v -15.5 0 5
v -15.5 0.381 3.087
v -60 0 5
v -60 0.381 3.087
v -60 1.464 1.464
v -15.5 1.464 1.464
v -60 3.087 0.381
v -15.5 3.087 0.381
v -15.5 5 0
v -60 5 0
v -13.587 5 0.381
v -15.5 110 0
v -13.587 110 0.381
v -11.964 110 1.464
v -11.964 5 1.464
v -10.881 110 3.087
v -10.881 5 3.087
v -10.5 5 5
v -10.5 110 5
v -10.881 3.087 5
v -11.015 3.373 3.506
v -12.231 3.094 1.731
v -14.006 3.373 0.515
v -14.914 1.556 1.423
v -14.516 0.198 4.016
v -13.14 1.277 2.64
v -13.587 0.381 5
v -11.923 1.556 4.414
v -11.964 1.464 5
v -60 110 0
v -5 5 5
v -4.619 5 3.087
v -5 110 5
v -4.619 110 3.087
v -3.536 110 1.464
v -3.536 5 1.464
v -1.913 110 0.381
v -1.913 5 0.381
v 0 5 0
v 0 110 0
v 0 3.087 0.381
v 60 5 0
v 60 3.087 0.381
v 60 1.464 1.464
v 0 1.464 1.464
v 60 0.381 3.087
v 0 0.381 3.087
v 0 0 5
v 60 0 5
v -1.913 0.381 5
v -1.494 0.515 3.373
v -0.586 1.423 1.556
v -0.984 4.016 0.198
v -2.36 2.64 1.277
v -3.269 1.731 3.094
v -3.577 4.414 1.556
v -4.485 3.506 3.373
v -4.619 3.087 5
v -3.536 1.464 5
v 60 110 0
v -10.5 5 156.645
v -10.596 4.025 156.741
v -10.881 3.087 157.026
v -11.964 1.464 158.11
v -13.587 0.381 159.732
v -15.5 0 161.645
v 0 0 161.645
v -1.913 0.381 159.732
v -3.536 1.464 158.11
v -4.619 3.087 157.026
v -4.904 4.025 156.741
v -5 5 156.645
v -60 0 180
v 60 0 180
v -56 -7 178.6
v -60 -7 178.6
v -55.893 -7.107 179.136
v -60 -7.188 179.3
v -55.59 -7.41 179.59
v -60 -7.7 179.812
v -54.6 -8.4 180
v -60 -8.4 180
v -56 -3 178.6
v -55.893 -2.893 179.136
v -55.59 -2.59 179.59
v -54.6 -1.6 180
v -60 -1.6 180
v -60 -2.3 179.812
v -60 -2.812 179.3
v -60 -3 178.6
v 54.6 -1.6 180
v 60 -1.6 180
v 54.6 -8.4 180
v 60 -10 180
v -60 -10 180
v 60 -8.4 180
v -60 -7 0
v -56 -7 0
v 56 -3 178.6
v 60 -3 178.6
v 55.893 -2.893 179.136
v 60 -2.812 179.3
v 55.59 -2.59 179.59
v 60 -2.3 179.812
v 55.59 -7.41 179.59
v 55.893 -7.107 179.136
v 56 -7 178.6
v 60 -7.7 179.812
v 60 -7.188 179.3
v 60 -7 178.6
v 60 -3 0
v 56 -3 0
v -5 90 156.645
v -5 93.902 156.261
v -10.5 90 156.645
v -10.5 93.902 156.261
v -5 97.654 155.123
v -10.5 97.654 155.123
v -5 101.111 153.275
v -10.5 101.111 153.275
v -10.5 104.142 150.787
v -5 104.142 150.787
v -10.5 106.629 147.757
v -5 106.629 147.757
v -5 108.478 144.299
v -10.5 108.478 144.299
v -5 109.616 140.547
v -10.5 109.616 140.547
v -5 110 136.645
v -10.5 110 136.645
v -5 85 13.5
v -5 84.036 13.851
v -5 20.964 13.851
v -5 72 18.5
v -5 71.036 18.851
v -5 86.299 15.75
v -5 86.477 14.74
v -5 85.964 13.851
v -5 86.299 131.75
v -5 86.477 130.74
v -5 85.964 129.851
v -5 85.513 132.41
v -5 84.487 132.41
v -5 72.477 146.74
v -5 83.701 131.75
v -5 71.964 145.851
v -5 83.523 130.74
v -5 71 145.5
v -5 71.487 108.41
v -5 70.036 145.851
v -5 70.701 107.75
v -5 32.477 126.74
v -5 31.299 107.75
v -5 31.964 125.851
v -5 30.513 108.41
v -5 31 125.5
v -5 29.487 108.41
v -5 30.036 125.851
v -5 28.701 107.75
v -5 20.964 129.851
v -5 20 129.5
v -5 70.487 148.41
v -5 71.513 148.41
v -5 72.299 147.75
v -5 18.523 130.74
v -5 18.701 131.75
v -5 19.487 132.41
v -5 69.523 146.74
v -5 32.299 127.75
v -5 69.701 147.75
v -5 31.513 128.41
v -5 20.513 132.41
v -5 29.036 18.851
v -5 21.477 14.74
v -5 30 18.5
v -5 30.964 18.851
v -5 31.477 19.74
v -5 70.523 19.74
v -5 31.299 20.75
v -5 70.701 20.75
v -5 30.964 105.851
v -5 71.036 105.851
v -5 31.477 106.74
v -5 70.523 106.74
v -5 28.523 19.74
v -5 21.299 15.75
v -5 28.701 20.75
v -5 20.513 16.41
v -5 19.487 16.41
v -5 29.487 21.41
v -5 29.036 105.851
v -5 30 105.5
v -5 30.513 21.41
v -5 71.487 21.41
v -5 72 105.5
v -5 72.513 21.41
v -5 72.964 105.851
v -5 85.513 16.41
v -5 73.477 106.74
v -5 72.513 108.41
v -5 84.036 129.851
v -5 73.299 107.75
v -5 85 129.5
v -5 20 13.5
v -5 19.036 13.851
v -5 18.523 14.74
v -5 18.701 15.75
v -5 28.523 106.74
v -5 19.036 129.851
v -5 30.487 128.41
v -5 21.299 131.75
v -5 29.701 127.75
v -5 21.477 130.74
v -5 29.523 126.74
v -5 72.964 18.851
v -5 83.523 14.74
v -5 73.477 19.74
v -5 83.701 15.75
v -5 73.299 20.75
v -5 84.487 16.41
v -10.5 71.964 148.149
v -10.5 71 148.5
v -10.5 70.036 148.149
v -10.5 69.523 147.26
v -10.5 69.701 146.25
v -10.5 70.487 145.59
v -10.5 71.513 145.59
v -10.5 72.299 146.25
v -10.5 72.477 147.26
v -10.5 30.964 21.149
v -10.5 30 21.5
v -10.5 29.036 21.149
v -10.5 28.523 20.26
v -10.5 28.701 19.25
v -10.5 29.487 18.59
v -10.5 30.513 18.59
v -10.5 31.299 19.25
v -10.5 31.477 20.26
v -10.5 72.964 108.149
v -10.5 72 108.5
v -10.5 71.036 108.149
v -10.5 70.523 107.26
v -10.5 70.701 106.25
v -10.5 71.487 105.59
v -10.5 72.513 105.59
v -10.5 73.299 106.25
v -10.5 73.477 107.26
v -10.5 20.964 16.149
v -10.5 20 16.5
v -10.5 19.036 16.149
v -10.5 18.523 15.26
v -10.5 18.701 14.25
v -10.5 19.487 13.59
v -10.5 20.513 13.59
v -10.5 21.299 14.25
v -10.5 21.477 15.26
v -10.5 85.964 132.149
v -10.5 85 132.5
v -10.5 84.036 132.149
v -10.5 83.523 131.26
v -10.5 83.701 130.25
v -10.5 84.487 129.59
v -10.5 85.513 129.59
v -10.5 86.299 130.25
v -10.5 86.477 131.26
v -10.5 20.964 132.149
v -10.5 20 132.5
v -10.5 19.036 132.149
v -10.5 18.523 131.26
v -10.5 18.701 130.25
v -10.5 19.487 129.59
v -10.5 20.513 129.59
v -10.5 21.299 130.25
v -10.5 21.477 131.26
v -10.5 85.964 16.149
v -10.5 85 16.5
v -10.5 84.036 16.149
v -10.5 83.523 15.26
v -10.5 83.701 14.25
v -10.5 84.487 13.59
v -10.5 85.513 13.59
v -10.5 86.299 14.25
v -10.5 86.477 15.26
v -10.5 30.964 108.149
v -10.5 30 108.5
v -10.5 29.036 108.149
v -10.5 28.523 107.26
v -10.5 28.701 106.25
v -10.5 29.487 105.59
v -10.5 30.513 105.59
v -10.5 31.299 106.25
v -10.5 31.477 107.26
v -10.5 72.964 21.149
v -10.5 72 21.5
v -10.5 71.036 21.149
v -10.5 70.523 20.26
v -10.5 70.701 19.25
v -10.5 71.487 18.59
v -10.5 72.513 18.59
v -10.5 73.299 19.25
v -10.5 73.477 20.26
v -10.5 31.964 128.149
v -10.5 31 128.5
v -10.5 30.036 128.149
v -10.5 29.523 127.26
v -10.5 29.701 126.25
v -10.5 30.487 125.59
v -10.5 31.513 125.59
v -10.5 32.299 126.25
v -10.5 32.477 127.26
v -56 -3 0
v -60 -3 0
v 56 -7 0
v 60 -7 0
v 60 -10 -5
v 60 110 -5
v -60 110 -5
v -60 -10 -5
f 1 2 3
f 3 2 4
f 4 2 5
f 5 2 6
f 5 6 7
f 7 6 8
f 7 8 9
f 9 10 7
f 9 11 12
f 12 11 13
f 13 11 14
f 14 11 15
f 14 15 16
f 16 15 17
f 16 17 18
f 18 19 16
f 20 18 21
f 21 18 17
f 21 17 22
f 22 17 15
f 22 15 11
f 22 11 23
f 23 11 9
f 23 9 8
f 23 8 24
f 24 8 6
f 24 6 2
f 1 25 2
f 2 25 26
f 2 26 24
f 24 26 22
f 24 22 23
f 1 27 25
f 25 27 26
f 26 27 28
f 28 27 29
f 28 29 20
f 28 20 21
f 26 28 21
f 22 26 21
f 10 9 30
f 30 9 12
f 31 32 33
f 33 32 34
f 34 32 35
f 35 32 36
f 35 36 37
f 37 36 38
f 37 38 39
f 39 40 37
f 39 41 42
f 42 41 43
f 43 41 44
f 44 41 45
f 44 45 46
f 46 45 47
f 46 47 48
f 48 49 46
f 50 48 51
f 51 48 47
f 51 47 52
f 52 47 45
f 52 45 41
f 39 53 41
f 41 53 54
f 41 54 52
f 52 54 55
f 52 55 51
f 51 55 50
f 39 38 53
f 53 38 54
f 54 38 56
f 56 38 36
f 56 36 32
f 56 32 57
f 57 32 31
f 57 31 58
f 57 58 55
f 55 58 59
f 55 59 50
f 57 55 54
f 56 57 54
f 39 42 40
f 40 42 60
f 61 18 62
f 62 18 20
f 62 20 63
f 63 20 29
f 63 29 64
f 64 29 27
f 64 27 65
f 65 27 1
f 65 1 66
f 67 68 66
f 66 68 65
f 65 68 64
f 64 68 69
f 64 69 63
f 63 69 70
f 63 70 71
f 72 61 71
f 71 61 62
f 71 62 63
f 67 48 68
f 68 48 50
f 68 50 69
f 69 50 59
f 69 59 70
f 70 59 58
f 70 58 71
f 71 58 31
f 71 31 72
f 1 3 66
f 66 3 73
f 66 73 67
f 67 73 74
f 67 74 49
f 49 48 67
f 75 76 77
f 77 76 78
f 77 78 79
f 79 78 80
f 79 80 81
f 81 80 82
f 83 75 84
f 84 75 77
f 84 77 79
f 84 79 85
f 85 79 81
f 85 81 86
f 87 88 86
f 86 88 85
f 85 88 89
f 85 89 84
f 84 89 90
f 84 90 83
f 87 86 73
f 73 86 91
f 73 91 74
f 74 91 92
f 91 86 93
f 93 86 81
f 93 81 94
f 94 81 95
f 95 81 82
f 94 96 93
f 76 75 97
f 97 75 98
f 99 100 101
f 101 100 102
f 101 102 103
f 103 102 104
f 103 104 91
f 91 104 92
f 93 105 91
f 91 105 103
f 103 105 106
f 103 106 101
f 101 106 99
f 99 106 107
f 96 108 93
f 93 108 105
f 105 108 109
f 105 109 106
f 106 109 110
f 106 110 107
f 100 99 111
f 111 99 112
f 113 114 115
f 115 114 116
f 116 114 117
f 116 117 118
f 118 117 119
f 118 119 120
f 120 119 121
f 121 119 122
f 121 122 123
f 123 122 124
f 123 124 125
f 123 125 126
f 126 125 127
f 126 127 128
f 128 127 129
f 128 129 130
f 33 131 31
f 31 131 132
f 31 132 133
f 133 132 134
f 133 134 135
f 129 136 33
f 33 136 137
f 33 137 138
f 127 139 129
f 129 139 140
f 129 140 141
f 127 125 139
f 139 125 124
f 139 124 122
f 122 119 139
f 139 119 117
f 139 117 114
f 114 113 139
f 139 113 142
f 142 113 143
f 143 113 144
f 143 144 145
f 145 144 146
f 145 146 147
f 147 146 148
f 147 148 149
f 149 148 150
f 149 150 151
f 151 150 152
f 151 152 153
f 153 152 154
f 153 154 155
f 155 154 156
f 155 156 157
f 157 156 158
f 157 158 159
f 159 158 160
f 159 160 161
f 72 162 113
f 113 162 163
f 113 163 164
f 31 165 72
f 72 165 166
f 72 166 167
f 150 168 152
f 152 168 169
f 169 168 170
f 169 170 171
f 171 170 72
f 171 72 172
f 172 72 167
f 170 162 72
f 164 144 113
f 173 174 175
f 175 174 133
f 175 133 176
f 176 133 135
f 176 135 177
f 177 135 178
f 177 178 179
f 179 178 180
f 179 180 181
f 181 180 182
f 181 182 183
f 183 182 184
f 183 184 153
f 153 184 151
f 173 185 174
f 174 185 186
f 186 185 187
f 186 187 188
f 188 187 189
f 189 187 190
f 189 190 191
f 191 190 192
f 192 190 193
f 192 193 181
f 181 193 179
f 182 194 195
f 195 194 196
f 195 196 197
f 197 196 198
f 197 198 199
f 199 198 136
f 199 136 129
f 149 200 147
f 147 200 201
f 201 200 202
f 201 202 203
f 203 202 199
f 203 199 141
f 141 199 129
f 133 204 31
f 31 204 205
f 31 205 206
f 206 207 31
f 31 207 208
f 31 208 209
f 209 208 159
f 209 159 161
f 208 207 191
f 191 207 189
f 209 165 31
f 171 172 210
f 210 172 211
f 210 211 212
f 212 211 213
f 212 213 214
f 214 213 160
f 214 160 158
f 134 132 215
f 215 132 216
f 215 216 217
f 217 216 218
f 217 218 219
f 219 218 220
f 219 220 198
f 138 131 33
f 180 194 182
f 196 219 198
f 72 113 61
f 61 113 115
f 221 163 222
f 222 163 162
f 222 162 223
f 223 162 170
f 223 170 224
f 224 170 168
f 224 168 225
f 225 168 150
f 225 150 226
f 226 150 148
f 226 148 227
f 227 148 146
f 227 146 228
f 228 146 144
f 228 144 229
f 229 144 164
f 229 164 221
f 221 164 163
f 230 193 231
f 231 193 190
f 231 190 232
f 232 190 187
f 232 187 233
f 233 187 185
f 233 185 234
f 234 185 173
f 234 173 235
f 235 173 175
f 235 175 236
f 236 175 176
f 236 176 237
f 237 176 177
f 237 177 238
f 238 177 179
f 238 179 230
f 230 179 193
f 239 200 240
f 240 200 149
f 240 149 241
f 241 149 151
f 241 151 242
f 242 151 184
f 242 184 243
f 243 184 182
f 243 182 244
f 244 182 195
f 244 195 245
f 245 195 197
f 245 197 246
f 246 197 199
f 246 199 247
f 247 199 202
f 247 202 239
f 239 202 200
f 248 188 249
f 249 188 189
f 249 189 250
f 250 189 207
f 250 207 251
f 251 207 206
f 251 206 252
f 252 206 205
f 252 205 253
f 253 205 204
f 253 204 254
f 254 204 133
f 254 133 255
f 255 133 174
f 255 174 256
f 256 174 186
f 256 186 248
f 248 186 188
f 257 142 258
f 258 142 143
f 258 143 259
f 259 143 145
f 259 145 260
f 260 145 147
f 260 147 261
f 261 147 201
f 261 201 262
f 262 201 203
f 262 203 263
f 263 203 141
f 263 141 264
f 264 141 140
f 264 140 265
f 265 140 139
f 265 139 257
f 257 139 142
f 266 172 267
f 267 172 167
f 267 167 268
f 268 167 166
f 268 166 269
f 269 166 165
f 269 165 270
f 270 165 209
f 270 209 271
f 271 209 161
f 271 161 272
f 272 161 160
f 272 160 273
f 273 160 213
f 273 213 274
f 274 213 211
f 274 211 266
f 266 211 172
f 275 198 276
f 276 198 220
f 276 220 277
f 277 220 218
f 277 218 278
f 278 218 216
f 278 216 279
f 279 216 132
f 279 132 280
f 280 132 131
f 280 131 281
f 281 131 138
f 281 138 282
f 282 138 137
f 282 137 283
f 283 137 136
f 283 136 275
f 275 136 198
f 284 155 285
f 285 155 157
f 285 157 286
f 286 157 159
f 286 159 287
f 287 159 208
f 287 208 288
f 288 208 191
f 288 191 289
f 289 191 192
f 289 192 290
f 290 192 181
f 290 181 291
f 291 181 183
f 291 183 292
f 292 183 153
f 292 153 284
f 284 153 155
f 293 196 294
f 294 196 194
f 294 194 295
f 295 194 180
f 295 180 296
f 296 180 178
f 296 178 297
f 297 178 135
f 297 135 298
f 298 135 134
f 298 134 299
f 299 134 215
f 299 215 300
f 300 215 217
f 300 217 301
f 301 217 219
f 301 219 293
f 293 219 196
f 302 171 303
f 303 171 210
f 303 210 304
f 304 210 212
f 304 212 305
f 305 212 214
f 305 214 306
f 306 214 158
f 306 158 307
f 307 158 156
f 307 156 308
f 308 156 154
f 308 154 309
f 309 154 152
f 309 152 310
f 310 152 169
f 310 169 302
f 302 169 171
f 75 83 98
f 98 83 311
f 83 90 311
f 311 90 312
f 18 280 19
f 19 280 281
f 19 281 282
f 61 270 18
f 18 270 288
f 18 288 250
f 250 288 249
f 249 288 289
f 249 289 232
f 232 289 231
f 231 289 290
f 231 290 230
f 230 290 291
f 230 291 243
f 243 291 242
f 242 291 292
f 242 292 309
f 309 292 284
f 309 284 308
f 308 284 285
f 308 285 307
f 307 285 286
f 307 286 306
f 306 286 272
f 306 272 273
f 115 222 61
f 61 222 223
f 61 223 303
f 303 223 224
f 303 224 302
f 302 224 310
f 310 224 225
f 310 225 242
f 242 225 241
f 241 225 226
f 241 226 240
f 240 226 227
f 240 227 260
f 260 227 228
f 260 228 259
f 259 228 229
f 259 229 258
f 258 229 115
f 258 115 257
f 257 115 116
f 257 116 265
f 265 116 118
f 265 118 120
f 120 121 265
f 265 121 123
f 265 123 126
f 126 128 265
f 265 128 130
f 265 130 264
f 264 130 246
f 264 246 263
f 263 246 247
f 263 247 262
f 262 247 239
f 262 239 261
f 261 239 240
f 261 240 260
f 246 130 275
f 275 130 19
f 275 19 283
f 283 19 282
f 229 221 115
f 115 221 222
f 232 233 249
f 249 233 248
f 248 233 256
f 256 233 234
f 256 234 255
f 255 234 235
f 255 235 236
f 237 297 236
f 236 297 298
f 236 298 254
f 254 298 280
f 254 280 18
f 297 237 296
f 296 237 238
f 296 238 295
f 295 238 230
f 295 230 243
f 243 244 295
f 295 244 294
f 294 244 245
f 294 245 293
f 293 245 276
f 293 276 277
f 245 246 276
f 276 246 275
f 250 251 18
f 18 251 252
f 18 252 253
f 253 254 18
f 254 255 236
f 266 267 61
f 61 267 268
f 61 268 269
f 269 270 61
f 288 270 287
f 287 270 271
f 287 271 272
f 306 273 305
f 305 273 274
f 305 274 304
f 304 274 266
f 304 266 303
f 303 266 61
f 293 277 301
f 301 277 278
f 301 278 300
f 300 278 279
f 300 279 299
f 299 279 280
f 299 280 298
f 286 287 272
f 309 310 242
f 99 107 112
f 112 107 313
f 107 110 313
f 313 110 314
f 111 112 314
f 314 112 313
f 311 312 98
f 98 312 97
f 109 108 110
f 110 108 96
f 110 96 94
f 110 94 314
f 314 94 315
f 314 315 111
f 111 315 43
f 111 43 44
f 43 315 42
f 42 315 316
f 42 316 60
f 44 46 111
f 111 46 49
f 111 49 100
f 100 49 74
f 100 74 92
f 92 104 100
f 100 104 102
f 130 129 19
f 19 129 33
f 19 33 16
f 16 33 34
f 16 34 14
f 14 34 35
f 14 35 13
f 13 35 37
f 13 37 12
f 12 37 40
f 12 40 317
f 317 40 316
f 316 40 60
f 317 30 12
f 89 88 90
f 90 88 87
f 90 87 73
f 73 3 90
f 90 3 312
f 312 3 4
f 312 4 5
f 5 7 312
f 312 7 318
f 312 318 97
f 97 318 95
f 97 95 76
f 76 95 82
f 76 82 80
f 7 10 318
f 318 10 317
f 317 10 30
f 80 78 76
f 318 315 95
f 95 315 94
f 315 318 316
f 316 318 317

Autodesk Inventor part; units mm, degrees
ref_plane "YZ Plane" through (0, 0, 0) normal (1, 0, 0) x (0, 1, 0)
ref_plane "XZ Plane" through (0, 0, 0) normal (0, 1, 0) x (-1, 0, 0)
ref_plane "XY Plane" through (0, 0, 0) normal (0, 0, 1) x (1, 0, 0)
sketch "Skizze1" plane through (0, 0, 0) normal (0, 0, 1) x (1, 0, 0)
  line L0 (-60, 110) -> (60, 110)
  line L1 (60, 110) -> (60, -10)
  line L2 (60, -10) -> (-60, -10)
  line L3 (-60, -10) -> (-60, 110)
  point P0 (0, 0)
  point P1 (0, 110)
  dimension "d0" = 120
  dimension "d1" = 120
  dimension "d2" = 10
extrude "Extrusion1" add sketch "Skizze1" against normal blind 5
sketch "Skizze2" plane through (0, 0, 0) normal (0, 0, 1) x (1, 0, 0)
  line L0 (-60, -10) -> (-60, 110) projected
  line L1 (-60, 0) -> (-10.5, 0)
  line L2 (-10.5, 0) -> (-10.5, 110)
  line L3 (-60, 110) -> (60, 110) projected
  line L4 (-5, 110) -> (-5, 0)
  line L5 (-5, 0) -> (60, 0)
  line L6 (-60, -10) -> (60, -10) projected
  line L7 (60, -10) -> (-60, -10) projected
  line L8 (60, 110) -> (60, -10) projected
  line L9 (-10.5, 110) -> (-5, 110)
  line L10 (-60, -10) -> (60, -10)
  line L11 (-60, 0) -> (-60, -3)
  line L12 (-60, -3) -> (-56, -3)
  line L13 (-56, -3) -> (-56, -7)
  line L14 (-56, -7) -> (-60, -7)
  line L15 (-60, -7) -> (-60, -10)
  line L16 (60, -10) -> (60, -7)
  line L17 (60, -7) -> (56, -7)
  line L18 (56, -7) -> (56, -3)
  line L19 (56, -3) -> (60, -3)
  line L20 (60, 0) -> (60, -3)
  point P0 (0, 0)
  dimension "d6" = 5.5
  dimension "d7" = 10
  dimension "d12" = 4
  dimension "d13" = 3
  dimension "d14" = 3
  dimension "d15" = 4
  dimension "d31" = 65
extrude "Extrusion2" add sketch "Skizze2" along normal blind 180 contours L0 L14 L13 L12 L1 L2 L3 L4 L5 L8 L19 L18 L17 L6
sketch "Skizze3" plane through (-5, 0, 0) normal (1, 0, 0) x (0, 0, -1)
  line L0 (-131, 85) -> (-15, 85) construction
  line L1 (-15, 85) -> (-15, 20) construction
  line L2 (-15, 20) -> (-131, 20) construction
  line L3 (-131, 20) -> (-131, 85) construction
  line L4 (0, 0) -> (0, 110) projected
  line L5 (0, 0) -> (-180, 0) projected
  line L6 (-107, 72) -> (-20, 72) construction
  line L7 (-20, 72) -> (-20, 30) construction
  line L8 (-20, 30) -> (-107, 30) construction
  line L9 (-107, 30) -> (-107, 72) construction
  line L10 (-147, 71) -> (-127, 71) construction
  line L11 (-127, 71) -> (-127, 31) construction
  line L12 (-127, 31) -> (-147, 31) construction
  line L13 (-147, 31) -> (-147, 71) construction
  dimension "d16" = 116
  dimension "d17" = 65
  dimension "d18" = 15
  dimension "d19" = 20
  dimension "d27" = 87
  dimension "d28" = 42
  dimension "d29" = 5
  dimension "d30" = 10
  dimension "d32" = 20
  dimension "d33" = 40
  dimension "d34" = 20
  dimension "d35" = 11
hole "Bohrung1" at (-5, 85, 131) at (-5, 20, 131) at (-5, 20, 15) at (-5, 85, 15) at (-5, 72, 107) at (-5, 30, 107) at (-5, 30, 20) at (-5, 72, 20) at (-5, 71, 147) at (-5, 31, 127) direction (-1, 0, 0) diameter 3 end through all
sketch "Skizze4" plane through (-5, 0, 0) normal (1, 0, 0) x (0, 0, -1)
  line L0 (0, 110) -> (-180, 110) projected
  line L1 (-156.6453, 110) -> (-156.6453, 0)
  line L2 (0, 0) -> (-180, 0) projected
  line L3 (-156.6453, 0) -> (-180, 0)
  line L4 (-180, 0) -> (-180, 110)
  line L5 (0, -3) -> (-180, -3) projected
  line L6 (-180, 110) -> (-156.6453, 110)
extrude "Extrusion3" cut sketch "Skizze4" against normal through all
sketch "Skizze5" plane through (-5, 0, 0) normal (1, 0, 0) x (0, 0, -1)
  point P0 (0, 0)
fillet "Rundung1" radius 20 1 edges at (-7.75, 110, 156.6453)
fillet "Rundung2" radius 1.4 6 edges at (58, -7, 180) (56, -5, 180) (58, -3, 180) (-58, -7, 180) (-56, -5, 180) (-58, -3, 180)
fillet "Rundung3" radius 5 3 edges at (-5, 0, 78.3226) (-10.5, 0, 78.3226) (-7.75, 0, 156.6453)
fillet "Rundung4" radius 5 5 edges at (-3.5355, 1.4645, 0) (-5, 57.5, 0) (-37.75, 0, 0) (-10.5, 57.5, 0) (-11.9645, 1.4645, 0)
equation "\"d13\" = d14"
equation "\"d15\" = d12"
properties part number "netzteil_halter_unten"
